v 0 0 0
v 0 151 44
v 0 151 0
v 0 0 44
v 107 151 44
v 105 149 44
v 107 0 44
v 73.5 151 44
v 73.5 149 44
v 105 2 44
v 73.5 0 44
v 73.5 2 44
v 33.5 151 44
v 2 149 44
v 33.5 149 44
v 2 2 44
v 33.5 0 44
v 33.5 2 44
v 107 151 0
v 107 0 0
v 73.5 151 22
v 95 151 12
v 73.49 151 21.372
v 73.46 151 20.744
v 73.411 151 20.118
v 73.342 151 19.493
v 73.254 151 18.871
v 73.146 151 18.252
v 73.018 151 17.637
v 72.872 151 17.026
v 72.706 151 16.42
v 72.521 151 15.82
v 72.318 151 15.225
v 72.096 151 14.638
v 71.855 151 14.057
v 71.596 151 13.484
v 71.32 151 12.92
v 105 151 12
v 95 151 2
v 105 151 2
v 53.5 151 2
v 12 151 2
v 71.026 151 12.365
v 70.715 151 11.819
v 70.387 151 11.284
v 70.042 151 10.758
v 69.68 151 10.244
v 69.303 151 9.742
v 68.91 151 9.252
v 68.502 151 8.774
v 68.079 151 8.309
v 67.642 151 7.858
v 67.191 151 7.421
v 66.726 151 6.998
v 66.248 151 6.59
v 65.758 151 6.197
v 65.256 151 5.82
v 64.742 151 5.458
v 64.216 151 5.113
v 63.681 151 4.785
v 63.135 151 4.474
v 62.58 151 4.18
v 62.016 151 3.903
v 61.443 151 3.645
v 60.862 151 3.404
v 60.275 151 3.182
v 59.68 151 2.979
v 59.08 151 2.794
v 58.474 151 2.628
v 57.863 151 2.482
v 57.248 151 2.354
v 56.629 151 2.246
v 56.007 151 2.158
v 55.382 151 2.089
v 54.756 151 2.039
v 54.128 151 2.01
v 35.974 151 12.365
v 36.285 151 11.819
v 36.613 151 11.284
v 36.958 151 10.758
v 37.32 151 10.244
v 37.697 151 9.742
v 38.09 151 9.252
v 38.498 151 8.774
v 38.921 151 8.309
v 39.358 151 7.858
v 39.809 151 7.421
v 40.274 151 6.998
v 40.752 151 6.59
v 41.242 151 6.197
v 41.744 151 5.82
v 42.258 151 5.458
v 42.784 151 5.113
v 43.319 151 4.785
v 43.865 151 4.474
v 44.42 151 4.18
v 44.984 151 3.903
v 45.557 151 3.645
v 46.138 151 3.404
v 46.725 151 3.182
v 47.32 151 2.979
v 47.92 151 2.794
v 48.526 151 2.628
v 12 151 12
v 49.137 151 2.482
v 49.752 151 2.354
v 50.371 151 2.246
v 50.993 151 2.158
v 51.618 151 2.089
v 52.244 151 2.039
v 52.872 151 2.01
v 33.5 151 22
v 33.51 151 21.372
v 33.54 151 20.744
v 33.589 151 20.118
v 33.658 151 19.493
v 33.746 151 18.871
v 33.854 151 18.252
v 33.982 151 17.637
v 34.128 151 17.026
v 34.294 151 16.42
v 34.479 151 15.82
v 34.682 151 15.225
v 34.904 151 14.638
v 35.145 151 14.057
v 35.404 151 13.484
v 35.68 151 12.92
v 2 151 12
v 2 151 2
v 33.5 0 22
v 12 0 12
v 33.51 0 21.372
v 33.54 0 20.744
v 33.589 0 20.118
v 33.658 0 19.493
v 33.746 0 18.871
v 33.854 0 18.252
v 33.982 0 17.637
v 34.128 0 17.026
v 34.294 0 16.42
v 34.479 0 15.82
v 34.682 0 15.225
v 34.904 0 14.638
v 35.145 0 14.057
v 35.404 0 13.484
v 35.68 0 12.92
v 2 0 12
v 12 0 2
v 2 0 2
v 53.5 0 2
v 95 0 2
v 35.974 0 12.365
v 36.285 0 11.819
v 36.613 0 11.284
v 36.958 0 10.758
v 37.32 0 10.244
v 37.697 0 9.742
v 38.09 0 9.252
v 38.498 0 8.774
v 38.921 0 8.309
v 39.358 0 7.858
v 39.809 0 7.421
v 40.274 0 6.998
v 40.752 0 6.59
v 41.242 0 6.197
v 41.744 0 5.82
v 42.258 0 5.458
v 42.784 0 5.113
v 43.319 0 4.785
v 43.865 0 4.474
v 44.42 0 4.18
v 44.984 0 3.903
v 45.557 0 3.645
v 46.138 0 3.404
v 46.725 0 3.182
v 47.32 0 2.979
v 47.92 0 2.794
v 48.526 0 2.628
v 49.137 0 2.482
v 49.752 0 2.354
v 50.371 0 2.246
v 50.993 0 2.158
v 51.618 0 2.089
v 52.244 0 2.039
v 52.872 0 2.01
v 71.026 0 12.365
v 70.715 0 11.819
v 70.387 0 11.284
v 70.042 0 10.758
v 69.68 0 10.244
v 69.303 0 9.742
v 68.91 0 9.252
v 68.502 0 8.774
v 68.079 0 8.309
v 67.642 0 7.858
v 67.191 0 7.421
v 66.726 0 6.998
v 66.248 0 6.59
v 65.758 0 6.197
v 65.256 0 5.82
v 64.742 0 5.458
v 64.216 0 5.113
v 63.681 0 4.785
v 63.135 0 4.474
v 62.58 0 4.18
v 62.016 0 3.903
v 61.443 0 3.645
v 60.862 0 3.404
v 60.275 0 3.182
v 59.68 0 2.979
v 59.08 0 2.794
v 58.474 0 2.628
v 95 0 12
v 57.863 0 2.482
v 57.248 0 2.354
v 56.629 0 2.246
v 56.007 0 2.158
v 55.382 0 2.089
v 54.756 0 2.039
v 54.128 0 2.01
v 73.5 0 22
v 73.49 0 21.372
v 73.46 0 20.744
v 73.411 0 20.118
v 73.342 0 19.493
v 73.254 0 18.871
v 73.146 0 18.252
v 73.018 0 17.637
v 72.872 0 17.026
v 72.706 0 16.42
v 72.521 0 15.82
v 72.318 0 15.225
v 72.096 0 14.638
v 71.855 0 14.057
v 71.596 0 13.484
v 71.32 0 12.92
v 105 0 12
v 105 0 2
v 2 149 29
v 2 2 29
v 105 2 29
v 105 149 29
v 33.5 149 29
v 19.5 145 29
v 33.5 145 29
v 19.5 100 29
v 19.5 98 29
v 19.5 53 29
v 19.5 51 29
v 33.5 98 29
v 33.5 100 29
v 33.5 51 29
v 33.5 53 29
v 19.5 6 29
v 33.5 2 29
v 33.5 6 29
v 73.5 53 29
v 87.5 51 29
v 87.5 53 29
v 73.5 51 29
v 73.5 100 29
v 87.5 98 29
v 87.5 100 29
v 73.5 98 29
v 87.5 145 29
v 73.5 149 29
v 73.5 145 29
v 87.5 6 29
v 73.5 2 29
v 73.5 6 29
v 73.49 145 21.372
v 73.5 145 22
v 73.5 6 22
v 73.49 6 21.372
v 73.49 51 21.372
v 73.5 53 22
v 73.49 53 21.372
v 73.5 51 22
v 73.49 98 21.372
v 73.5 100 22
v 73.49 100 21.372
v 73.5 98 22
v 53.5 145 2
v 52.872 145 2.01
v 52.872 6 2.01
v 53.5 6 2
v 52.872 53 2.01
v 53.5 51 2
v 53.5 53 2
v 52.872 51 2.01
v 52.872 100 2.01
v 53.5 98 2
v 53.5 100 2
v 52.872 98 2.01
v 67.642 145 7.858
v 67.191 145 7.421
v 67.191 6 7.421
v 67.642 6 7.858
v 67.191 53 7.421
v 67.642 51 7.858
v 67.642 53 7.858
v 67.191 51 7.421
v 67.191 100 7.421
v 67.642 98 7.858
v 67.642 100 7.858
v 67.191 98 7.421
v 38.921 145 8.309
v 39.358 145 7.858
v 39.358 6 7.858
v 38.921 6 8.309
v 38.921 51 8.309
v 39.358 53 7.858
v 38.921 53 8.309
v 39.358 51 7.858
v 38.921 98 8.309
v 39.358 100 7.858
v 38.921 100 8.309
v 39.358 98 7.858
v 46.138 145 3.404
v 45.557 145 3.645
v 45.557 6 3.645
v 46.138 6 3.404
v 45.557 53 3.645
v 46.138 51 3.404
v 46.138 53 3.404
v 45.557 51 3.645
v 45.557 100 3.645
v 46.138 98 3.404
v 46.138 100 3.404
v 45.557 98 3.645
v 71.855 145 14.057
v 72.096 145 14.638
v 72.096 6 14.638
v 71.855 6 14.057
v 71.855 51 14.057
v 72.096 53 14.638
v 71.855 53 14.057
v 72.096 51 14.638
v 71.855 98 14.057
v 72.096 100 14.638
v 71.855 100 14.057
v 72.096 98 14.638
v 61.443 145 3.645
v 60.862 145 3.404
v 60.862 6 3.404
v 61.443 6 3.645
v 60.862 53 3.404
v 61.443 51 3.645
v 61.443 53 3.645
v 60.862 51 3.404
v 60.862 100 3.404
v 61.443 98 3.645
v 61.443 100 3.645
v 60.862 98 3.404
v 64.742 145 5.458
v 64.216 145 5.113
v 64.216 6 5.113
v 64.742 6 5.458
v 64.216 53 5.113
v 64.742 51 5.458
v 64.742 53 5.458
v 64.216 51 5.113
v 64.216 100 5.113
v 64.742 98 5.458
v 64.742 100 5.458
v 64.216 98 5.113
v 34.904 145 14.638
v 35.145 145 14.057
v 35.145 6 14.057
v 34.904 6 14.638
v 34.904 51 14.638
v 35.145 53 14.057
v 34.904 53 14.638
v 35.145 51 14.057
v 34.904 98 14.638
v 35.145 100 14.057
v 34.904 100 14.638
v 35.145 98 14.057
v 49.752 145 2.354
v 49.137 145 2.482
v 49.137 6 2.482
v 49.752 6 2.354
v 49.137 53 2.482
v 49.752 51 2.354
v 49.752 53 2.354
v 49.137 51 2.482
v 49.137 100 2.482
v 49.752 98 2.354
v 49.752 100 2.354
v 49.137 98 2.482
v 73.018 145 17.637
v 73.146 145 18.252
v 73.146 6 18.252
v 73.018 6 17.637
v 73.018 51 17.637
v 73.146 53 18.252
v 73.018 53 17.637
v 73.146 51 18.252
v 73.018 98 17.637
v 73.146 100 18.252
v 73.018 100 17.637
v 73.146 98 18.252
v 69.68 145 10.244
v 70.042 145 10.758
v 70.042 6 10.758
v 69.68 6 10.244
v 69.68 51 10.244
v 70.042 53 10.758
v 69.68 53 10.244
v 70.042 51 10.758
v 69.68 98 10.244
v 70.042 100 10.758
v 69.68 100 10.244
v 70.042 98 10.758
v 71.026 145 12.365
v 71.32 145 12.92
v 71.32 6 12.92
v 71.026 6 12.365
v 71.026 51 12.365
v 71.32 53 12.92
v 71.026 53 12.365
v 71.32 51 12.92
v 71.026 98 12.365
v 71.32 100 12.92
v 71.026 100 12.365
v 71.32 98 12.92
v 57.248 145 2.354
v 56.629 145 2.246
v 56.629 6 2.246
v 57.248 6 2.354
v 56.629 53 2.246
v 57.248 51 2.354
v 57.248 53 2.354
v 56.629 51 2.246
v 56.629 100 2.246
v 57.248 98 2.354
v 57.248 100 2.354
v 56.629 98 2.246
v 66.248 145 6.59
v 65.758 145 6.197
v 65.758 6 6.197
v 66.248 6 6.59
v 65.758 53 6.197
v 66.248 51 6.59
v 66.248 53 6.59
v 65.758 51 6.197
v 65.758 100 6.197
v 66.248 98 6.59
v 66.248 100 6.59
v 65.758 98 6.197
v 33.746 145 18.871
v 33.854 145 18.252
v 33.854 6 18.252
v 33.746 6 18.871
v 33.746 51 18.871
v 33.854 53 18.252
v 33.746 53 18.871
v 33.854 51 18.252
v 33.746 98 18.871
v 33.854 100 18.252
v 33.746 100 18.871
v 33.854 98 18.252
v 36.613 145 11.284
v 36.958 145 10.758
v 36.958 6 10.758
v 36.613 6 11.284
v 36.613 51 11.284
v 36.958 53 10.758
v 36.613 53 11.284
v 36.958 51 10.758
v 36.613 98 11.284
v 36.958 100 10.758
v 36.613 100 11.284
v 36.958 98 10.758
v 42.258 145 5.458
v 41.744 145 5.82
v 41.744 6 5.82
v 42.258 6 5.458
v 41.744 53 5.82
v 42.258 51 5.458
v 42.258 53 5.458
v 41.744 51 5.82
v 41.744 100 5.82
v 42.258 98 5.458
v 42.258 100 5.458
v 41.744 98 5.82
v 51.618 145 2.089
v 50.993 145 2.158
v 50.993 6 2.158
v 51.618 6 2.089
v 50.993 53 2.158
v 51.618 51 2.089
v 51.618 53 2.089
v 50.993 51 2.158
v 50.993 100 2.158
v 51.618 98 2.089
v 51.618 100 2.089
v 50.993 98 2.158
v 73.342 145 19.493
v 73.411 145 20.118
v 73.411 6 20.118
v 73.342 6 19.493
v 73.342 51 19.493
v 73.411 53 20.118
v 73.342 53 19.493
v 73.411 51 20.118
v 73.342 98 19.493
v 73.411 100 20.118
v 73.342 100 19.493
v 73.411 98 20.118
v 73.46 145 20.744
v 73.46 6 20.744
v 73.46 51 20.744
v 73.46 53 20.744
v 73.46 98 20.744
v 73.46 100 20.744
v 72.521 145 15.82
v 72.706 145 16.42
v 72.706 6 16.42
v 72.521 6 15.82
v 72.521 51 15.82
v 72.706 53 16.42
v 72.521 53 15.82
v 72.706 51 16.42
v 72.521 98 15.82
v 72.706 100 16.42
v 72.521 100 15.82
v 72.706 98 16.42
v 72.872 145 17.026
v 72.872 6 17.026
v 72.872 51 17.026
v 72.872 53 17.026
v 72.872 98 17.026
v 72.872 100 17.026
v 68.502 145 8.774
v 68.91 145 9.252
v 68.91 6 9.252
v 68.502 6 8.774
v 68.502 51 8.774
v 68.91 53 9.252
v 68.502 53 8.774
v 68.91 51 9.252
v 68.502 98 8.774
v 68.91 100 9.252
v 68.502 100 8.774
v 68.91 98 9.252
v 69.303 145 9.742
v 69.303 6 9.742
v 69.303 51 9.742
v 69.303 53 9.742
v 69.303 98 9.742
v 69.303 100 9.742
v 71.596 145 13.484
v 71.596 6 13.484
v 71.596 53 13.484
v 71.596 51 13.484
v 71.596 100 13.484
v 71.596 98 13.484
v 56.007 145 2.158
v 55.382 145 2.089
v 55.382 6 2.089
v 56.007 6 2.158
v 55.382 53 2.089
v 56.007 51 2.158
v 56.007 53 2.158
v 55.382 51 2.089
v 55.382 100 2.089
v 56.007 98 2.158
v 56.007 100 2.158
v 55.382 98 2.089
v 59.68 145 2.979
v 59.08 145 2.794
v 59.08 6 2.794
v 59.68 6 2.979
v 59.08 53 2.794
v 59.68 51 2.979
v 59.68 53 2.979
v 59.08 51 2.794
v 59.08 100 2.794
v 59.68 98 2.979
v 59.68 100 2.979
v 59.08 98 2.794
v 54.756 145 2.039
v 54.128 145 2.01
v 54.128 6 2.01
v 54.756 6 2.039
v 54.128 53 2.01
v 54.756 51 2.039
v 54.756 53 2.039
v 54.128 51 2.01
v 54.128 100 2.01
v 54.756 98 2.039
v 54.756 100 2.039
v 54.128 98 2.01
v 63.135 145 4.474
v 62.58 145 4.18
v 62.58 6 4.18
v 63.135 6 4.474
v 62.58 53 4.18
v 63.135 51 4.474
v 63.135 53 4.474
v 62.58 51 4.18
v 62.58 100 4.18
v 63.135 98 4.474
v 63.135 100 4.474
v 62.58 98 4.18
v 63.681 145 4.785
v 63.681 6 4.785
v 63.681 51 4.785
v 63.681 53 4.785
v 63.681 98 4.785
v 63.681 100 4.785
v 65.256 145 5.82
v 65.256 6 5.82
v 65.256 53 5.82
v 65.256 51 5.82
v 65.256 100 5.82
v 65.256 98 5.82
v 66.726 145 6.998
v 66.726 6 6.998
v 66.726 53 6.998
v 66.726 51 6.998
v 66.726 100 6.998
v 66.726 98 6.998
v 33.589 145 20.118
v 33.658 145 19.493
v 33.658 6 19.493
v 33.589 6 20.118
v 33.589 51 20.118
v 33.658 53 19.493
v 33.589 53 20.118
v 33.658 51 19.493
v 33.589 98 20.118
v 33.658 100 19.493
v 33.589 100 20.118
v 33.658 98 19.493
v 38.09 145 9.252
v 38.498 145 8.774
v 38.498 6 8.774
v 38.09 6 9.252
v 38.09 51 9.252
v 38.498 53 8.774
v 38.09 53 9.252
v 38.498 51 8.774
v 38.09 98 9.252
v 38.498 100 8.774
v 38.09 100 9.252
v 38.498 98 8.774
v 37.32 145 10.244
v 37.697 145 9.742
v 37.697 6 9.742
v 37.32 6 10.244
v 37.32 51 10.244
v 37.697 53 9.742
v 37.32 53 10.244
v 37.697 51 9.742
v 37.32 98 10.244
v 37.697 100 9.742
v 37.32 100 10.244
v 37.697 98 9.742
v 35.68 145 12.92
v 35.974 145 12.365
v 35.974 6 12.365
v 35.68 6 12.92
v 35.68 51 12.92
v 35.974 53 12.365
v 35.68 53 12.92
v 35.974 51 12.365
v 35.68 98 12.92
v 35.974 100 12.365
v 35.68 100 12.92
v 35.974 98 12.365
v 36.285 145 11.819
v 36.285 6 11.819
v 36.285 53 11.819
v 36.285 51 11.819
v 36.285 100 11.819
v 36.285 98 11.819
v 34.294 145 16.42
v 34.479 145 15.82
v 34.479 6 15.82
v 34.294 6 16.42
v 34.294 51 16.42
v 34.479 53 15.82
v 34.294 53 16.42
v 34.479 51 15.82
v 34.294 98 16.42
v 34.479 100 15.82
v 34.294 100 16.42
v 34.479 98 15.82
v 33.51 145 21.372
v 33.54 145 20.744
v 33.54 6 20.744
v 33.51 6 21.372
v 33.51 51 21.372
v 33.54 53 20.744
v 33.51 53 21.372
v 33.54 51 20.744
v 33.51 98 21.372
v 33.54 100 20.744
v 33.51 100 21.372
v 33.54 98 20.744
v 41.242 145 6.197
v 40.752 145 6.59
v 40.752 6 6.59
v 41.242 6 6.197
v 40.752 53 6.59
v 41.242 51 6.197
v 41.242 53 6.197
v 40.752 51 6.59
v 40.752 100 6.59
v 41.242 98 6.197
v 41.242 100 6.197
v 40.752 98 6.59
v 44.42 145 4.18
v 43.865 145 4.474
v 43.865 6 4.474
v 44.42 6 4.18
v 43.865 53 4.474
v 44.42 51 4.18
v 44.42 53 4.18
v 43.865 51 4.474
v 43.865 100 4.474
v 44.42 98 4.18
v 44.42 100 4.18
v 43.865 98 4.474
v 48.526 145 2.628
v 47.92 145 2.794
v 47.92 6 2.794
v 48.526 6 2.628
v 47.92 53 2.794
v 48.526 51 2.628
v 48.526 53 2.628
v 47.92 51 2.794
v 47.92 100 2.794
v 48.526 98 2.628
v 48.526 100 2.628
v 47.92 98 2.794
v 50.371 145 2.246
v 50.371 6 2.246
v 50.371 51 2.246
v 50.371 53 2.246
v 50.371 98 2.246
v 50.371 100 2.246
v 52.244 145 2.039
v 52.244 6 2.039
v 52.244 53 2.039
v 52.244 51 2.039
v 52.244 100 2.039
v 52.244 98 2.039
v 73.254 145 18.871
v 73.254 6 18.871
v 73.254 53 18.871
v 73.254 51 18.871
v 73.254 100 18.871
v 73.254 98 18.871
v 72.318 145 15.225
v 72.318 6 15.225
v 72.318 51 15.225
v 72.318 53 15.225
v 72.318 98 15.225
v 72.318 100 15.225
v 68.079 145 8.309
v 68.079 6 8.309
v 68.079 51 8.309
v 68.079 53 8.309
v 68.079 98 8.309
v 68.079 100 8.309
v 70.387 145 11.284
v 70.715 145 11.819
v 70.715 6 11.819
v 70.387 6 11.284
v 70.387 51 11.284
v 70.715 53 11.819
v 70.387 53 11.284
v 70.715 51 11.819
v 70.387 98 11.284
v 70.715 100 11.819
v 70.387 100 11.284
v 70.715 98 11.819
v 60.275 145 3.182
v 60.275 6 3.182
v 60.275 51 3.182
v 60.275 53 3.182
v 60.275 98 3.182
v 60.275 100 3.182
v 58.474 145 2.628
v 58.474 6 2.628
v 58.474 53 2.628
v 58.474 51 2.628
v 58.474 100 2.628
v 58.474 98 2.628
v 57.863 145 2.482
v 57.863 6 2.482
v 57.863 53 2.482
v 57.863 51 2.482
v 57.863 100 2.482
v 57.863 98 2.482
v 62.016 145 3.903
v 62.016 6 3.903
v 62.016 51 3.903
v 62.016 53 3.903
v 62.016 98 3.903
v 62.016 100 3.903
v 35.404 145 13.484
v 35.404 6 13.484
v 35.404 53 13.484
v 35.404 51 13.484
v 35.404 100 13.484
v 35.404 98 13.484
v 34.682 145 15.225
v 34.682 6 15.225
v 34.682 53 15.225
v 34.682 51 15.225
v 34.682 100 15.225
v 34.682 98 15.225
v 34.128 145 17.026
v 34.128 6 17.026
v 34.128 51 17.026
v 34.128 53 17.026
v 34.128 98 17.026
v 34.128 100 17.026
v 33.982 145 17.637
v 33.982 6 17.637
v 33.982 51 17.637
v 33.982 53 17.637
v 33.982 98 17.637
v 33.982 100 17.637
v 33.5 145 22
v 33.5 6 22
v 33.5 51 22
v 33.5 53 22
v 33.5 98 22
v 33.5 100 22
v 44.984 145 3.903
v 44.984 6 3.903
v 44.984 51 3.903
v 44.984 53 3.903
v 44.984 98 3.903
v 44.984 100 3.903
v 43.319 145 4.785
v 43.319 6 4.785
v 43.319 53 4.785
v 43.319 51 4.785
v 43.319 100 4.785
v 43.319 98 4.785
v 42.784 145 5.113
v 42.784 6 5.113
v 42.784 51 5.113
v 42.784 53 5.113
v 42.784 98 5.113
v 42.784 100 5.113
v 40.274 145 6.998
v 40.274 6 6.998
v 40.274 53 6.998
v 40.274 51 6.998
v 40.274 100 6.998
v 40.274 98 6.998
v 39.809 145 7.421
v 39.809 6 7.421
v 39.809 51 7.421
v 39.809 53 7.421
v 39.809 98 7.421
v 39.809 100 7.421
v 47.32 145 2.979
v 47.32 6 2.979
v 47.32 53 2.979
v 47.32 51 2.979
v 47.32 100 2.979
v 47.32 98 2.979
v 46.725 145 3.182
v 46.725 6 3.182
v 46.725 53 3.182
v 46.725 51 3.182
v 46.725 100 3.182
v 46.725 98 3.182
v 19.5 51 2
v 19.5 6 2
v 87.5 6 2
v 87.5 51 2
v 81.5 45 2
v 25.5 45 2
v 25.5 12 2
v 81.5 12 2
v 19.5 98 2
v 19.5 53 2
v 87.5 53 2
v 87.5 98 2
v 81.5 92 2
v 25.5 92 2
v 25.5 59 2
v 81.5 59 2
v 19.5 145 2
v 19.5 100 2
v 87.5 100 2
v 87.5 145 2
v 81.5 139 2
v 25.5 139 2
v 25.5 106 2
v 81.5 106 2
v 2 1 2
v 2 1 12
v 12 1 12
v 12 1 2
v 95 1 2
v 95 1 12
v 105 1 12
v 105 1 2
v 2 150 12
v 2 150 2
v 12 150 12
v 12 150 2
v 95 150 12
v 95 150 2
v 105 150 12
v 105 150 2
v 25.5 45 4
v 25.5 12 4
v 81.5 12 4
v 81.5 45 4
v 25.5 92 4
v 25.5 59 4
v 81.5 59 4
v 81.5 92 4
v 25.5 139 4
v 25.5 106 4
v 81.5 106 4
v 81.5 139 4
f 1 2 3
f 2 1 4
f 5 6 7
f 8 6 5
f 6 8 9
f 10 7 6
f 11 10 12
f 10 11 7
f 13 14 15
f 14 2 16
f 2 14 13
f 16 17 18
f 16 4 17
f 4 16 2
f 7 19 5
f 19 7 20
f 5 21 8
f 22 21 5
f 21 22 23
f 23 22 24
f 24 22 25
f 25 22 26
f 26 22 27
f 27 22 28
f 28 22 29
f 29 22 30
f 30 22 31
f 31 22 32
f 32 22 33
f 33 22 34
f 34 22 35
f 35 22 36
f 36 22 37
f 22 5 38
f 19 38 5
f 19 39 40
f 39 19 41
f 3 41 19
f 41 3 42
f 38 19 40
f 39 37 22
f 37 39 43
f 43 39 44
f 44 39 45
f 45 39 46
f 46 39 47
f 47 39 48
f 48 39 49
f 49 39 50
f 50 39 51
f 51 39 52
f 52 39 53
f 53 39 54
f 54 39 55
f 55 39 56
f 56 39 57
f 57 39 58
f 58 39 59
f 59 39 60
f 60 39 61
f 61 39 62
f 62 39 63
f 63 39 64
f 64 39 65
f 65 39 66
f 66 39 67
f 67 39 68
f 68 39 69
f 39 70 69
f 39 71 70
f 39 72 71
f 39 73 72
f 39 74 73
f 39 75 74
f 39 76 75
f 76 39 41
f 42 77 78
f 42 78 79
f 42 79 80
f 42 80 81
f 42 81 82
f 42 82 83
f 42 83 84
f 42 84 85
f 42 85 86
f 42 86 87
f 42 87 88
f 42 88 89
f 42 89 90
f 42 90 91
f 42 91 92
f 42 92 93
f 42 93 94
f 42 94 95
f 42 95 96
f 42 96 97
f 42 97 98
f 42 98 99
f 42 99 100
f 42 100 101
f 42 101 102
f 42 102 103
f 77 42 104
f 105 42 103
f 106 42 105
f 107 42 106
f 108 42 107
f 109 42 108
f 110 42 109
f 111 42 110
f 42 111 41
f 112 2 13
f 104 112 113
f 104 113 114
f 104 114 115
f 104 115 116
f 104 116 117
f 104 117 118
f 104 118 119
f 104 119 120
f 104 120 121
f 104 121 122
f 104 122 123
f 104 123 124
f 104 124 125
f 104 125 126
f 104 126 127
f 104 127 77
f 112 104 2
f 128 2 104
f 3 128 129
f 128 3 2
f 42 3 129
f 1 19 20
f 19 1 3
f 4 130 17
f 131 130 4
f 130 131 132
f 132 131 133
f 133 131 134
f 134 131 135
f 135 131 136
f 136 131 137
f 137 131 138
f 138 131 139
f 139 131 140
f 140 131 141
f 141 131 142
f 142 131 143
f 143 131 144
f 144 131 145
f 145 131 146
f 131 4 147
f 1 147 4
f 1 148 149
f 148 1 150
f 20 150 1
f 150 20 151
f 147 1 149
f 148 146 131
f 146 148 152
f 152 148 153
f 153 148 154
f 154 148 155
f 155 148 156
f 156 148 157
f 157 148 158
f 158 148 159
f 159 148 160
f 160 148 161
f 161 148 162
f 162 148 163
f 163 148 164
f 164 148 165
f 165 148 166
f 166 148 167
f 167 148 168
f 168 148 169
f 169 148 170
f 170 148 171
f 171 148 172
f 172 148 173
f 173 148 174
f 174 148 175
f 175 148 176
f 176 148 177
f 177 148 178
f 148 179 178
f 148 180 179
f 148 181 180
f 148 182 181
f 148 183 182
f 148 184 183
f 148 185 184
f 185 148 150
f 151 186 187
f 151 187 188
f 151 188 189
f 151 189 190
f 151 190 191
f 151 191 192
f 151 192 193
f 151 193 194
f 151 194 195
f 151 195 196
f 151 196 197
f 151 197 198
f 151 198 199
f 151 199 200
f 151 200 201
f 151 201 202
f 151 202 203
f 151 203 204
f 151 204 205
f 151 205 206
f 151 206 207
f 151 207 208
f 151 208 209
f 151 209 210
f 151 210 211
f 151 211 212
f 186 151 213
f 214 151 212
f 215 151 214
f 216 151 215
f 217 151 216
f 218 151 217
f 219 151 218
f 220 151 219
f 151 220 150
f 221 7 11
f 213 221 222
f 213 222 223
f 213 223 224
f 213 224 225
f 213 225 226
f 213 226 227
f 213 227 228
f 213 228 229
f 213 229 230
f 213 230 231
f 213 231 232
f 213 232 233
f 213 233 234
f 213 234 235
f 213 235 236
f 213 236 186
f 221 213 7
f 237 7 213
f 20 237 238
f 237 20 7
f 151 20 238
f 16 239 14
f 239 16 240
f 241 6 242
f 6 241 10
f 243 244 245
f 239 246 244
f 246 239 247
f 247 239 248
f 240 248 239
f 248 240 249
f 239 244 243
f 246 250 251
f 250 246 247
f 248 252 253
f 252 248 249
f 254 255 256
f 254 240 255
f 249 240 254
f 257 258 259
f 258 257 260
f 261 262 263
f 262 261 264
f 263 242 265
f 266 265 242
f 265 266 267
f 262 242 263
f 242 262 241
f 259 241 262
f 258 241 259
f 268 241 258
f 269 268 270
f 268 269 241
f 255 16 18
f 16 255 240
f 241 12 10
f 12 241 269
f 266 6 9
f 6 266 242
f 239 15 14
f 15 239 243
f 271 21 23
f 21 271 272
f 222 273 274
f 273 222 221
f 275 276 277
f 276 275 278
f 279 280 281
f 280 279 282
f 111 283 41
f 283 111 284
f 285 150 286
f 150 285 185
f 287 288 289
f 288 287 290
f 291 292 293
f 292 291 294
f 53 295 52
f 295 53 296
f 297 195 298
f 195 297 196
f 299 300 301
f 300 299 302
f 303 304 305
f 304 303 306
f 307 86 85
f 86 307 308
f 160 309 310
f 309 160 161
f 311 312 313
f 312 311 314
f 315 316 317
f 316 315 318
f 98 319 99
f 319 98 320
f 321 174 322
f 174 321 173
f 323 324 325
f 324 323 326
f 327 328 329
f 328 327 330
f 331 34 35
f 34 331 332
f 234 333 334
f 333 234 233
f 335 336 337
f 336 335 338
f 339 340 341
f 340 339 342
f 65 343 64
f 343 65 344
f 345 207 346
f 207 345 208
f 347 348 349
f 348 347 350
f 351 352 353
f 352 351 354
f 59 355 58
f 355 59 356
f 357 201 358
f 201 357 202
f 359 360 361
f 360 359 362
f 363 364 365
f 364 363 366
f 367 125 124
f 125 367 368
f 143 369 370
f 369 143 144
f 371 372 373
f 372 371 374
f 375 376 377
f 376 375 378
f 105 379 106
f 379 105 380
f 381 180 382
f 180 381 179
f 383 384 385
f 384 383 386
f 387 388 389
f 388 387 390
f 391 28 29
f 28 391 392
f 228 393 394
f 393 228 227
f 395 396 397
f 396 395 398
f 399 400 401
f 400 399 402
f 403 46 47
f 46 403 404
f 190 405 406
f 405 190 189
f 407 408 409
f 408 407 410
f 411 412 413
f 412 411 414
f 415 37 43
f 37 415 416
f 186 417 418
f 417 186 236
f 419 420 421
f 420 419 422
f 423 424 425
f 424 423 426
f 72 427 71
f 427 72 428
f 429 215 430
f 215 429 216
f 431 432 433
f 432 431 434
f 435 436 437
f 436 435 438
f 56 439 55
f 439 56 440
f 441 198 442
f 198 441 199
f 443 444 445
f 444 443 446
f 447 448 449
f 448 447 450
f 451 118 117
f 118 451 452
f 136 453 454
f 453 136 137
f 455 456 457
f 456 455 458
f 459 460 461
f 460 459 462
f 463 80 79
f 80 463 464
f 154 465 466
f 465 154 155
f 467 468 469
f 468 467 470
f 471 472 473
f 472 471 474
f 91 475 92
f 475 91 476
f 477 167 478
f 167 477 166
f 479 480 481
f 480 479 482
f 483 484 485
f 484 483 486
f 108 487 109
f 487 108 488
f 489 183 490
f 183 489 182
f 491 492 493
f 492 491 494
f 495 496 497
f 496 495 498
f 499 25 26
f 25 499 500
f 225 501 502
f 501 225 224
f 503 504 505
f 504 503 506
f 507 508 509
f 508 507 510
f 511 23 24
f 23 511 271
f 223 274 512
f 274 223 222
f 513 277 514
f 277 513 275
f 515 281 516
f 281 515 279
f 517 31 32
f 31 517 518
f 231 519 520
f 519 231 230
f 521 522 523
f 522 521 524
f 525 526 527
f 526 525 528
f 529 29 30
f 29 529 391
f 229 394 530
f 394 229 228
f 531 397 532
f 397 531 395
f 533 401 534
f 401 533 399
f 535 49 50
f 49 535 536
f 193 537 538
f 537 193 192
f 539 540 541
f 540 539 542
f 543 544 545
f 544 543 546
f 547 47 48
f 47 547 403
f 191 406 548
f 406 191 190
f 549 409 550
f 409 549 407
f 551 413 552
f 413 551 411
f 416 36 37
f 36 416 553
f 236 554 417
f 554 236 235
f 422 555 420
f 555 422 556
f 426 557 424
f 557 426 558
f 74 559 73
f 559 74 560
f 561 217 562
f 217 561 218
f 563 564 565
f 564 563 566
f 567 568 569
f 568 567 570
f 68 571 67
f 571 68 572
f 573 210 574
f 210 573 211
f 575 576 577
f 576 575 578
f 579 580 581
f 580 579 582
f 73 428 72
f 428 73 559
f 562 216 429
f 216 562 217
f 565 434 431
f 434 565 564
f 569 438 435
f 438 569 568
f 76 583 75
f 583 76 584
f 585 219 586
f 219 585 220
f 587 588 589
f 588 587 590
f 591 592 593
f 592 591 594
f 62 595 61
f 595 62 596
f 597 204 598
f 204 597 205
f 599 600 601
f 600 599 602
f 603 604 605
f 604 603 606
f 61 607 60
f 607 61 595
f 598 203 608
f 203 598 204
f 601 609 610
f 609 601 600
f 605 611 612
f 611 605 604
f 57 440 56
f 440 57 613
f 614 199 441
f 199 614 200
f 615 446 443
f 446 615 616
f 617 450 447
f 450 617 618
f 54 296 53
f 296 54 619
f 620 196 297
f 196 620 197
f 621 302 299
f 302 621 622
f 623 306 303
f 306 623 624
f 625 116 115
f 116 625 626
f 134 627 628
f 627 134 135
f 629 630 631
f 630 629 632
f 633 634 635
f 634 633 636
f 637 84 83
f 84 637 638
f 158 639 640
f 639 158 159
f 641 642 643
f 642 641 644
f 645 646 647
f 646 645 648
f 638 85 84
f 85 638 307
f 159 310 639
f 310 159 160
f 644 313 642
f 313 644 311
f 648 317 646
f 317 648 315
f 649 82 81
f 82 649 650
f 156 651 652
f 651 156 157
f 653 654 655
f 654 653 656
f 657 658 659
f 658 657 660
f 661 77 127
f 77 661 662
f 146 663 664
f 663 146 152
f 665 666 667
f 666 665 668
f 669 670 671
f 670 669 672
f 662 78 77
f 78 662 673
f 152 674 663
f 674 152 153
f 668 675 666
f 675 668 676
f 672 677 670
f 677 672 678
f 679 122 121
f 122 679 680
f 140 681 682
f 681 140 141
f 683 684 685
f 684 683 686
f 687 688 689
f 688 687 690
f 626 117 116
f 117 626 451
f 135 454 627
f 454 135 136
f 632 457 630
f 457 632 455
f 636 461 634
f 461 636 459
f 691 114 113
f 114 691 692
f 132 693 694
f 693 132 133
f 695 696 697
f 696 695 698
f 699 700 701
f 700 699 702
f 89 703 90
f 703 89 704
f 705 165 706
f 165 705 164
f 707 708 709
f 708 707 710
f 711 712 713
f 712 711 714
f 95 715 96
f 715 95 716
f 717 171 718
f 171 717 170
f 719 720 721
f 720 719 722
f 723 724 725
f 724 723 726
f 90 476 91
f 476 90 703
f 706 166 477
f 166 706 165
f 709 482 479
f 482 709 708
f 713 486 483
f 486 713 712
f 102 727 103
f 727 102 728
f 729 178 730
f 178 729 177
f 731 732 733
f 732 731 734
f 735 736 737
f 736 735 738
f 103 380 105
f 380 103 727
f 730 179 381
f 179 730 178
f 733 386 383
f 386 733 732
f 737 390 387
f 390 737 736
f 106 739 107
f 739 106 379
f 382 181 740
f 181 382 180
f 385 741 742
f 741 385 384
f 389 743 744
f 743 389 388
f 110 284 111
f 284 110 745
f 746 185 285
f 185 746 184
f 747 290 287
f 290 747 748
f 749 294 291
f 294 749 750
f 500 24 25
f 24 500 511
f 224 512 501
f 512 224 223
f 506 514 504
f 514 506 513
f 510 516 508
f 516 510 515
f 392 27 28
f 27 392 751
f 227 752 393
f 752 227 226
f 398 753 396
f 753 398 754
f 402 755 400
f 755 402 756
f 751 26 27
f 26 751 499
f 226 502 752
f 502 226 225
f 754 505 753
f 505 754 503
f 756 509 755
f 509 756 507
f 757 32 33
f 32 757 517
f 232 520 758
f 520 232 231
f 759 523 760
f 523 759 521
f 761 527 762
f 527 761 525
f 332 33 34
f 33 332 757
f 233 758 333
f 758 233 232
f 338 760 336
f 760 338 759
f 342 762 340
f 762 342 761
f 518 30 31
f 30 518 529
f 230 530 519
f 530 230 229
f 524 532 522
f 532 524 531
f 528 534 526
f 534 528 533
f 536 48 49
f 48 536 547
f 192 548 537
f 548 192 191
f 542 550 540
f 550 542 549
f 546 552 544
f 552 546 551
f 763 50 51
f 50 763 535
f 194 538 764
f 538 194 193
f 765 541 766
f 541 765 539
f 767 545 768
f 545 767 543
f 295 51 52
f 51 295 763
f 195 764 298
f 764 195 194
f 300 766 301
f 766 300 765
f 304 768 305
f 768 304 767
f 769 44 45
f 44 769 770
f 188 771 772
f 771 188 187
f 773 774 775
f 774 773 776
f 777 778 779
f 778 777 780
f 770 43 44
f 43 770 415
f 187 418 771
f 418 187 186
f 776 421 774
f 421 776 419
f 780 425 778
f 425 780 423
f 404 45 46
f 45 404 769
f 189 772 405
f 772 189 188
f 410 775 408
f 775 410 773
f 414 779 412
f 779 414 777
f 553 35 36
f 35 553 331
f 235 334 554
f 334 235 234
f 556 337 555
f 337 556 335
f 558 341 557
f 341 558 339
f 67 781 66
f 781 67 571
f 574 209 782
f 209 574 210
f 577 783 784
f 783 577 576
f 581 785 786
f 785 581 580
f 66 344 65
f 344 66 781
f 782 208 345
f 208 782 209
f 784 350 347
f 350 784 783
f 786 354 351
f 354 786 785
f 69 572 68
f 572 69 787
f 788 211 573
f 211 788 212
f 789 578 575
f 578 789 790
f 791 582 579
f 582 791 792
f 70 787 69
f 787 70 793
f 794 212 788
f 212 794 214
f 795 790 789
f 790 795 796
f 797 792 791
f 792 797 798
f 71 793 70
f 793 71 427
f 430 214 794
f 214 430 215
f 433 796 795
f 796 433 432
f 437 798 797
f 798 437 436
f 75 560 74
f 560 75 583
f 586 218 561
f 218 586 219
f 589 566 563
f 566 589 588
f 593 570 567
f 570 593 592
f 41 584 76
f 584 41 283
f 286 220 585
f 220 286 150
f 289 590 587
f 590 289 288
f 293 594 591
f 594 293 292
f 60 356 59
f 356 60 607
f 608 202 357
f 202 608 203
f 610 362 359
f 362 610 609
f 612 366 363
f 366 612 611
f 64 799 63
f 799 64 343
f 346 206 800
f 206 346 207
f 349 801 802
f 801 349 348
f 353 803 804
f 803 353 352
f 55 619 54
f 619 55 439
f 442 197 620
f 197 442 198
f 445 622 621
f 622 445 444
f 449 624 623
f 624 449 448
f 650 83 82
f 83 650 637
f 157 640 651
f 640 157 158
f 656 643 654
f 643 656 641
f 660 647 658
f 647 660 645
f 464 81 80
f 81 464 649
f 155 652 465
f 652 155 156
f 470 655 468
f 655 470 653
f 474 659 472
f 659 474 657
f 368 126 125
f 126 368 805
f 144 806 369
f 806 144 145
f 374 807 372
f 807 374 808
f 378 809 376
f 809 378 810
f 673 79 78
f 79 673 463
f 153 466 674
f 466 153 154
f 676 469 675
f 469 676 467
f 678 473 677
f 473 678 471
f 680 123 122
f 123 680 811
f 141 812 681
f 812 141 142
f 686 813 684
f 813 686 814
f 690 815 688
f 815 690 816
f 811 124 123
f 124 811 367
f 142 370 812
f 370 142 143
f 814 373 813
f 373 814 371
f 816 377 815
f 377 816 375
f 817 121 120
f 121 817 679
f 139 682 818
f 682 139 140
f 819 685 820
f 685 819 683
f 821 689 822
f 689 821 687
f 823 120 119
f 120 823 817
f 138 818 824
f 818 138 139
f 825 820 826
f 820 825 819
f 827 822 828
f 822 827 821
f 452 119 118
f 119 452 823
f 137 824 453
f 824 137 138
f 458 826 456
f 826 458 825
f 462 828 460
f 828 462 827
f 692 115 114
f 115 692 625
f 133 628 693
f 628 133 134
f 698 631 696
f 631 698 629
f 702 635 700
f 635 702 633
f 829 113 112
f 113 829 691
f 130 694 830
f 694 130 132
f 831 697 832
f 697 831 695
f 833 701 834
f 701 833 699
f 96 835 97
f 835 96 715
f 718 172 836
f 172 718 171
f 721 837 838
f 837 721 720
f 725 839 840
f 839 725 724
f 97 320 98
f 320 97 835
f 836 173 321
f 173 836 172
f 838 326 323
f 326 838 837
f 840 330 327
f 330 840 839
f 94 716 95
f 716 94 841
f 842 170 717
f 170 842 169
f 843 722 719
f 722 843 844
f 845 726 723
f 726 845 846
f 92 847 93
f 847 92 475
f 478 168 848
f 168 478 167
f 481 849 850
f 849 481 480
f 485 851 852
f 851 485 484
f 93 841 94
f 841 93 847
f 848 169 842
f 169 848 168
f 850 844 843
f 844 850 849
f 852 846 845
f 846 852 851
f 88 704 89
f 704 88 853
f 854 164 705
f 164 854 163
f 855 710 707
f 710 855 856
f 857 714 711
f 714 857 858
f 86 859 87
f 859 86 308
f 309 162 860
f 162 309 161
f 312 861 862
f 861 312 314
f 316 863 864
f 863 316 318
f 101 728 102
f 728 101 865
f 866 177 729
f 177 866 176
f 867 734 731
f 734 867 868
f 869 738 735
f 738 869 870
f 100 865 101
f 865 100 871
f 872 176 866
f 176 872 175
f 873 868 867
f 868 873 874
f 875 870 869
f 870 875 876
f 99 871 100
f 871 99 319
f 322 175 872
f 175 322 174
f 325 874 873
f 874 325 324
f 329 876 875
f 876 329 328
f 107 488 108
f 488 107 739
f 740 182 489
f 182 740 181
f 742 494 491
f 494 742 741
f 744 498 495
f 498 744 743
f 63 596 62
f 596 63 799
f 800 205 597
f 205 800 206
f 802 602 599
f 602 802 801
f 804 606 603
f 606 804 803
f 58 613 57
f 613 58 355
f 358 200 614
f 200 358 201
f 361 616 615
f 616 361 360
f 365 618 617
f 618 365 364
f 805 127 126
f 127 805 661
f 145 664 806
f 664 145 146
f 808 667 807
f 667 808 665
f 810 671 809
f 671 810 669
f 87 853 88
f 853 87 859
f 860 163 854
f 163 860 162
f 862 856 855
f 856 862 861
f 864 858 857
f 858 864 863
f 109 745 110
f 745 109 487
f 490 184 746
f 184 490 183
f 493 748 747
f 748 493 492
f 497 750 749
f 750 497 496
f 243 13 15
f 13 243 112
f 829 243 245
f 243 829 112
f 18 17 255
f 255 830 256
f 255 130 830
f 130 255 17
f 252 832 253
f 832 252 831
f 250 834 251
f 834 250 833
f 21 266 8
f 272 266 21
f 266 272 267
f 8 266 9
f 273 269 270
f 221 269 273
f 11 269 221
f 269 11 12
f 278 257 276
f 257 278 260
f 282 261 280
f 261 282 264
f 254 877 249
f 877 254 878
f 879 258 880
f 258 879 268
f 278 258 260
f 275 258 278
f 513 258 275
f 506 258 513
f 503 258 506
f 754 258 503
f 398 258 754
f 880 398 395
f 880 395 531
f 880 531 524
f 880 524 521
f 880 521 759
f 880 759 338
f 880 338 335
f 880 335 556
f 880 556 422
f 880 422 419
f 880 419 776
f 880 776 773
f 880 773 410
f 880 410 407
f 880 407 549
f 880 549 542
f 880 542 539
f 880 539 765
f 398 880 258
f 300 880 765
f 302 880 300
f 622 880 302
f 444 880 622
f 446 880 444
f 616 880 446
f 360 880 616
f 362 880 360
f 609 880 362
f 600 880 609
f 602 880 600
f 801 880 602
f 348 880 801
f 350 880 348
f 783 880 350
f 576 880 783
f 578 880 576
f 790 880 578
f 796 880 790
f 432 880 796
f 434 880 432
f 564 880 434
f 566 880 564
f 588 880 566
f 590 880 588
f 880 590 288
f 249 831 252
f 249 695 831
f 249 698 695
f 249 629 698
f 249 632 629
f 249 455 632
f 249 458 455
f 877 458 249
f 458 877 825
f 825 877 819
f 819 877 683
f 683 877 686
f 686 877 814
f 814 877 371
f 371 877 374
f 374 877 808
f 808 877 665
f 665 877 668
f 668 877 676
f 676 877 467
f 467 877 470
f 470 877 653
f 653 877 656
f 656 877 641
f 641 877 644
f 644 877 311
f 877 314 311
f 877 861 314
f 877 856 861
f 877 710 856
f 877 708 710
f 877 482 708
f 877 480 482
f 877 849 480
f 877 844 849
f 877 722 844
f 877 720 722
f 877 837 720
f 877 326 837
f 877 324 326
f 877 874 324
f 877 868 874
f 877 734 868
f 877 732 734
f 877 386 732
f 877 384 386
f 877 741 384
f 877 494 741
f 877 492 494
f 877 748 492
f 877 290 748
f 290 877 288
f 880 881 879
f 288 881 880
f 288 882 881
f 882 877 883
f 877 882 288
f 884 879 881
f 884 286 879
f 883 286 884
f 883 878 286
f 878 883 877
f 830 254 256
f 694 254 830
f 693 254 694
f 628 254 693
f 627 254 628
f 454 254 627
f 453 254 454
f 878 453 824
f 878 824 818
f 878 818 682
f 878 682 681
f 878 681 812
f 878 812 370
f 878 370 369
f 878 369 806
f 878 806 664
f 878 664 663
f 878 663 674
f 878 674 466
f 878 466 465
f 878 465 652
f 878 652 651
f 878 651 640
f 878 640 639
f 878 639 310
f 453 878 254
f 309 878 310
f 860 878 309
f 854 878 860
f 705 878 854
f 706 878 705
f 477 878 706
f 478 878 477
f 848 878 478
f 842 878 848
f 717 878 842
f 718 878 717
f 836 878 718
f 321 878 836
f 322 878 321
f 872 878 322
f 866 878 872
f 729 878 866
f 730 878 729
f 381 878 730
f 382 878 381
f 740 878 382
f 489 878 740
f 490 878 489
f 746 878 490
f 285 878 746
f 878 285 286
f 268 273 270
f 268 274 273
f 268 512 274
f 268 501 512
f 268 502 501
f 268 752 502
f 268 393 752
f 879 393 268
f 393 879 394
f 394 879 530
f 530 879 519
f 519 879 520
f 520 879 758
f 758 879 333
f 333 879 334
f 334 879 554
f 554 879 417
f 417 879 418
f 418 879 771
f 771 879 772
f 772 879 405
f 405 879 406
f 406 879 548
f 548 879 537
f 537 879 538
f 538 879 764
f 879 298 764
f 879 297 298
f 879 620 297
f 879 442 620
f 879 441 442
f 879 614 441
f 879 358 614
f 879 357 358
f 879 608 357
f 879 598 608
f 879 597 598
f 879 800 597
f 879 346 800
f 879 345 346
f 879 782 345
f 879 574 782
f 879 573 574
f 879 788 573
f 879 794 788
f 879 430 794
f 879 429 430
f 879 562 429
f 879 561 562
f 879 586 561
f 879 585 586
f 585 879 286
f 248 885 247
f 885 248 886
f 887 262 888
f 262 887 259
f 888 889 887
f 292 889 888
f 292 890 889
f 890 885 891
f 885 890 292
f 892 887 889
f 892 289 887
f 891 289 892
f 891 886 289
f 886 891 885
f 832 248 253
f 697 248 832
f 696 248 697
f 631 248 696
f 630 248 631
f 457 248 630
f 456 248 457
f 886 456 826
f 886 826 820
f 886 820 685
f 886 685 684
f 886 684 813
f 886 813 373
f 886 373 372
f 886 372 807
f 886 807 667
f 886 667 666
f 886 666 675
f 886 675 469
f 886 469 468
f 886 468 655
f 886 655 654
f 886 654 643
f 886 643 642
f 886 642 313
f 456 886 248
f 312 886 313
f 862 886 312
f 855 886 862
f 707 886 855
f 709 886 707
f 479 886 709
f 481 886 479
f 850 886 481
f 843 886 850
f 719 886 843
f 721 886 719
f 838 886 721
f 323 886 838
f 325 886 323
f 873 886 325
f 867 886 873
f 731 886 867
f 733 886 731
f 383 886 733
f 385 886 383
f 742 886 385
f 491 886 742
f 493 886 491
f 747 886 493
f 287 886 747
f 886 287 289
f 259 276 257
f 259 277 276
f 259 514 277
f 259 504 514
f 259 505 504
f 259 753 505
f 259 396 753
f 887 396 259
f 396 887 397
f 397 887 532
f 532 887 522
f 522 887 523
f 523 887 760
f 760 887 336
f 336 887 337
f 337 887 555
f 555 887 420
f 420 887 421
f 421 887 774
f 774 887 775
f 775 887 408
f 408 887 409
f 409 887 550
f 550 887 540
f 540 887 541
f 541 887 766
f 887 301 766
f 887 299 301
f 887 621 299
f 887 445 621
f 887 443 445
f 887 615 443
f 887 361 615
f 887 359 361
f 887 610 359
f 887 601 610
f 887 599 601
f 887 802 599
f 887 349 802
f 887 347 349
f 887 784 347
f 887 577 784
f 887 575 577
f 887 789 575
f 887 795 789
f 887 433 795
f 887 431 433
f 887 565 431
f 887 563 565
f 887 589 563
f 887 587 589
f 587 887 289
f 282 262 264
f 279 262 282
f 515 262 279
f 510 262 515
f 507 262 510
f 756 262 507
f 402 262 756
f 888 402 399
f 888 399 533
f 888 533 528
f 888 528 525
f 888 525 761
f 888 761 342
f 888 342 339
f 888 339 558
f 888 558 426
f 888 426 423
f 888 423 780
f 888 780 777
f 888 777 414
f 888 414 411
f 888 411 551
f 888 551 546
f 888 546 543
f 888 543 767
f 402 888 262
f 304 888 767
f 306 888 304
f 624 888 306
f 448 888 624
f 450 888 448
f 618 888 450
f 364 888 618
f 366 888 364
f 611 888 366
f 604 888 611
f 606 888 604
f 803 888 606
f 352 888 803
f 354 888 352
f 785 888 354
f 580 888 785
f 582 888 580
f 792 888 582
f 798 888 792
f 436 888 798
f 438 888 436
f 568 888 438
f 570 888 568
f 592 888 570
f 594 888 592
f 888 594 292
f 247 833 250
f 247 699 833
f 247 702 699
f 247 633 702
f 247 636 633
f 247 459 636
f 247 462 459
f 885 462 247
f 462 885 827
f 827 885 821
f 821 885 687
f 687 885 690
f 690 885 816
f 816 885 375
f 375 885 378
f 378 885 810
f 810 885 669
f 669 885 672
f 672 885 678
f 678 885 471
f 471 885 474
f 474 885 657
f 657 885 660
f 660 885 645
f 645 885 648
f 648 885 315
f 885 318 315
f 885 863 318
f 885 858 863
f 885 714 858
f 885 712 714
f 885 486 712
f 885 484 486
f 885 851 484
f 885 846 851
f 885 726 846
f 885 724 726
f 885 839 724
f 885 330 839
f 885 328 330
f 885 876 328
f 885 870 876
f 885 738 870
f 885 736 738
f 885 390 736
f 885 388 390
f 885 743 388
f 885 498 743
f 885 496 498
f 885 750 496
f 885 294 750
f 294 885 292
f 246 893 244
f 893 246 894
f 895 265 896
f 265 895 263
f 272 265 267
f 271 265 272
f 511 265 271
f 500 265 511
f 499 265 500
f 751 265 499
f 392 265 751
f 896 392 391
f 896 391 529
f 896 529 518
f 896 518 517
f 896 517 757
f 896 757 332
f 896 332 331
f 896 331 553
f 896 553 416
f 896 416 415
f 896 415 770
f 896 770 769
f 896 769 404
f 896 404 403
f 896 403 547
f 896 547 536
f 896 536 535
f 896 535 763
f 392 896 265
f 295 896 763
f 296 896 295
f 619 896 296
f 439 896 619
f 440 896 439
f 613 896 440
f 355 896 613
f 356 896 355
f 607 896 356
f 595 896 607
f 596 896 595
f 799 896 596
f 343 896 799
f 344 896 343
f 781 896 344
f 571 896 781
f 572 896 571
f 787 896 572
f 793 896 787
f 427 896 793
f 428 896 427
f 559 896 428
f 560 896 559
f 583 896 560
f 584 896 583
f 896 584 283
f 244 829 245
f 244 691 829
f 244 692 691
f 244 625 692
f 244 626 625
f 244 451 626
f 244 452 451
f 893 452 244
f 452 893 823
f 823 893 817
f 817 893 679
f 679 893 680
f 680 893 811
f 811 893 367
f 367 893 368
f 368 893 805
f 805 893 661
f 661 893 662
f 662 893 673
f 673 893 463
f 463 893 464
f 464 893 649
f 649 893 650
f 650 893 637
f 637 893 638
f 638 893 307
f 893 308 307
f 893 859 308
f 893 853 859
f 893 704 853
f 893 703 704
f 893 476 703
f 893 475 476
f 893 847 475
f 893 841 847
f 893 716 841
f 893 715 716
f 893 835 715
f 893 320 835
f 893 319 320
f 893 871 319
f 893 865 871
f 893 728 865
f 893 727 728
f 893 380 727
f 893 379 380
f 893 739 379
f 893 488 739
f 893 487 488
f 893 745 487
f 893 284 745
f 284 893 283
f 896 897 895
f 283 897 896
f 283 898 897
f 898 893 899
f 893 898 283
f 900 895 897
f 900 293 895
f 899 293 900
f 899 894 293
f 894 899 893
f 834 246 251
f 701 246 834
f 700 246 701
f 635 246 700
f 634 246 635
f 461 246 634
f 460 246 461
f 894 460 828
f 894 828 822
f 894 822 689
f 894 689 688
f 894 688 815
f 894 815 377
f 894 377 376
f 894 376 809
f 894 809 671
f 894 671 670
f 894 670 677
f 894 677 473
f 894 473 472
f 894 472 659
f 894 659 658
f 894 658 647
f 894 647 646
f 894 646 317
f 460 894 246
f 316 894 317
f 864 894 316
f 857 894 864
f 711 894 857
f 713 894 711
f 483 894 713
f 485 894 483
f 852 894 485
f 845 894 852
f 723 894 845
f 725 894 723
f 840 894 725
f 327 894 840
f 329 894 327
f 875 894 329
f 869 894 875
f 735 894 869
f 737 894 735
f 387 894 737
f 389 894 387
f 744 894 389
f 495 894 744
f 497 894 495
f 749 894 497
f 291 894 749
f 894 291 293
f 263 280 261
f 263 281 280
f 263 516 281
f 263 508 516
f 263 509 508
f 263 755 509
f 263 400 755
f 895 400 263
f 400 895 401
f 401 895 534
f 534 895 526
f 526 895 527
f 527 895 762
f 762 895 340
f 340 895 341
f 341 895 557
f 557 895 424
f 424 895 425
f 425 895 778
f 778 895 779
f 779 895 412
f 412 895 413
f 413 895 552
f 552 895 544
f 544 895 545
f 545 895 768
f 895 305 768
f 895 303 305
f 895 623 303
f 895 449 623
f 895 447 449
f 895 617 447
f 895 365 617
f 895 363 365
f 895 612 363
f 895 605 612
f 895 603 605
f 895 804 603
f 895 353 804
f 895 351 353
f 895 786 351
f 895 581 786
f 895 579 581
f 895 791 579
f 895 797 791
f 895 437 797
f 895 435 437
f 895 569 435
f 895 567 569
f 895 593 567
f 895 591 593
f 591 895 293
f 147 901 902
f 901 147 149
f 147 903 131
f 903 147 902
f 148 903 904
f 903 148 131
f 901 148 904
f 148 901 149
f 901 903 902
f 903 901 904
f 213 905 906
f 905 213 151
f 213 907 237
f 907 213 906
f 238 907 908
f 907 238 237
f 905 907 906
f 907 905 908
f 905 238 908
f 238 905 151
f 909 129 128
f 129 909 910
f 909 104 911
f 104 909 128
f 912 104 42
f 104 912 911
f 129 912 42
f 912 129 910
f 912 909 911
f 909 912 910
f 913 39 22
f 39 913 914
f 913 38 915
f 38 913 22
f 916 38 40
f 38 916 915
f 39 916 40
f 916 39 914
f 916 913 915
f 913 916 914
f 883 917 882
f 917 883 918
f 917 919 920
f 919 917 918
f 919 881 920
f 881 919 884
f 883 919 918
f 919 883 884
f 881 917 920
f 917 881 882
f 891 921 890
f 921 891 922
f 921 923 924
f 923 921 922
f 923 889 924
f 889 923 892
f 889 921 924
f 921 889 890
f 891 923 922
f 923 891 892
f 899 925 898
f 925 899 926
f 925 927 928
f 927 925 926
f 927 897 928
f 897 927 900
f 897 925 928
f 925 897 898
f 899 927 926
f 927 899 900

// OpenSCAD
$fn=200;

THICK = 2;

LARGE_CARD_L = 147;
LARGE_CARD_W = 103;
LARGE_CARD_STACK = 15;

SMALL_CARD_L = 68;
SMALL_CARD_W = 45;
SMALL_CARD_STACK = 25;

STUMP = 2;
STUMP_MARGIN = 6;

BOX_W = LARGE_CARD_W + (THICK * 2);
BOX_L = LARGE_CARD_L + (THICK * 2);
BOX_H = LARGE_CARD_STACK + SMALL_CARD_STACK + THICK + STUMP;

SMALL_X = (BOX_W / 2) - (SMALL_CARD_L / 2);

difference() {
    cube(size = [
        BOX_W,
        BOX_L, 
        BOX_H]);

    translate([
        THICK, 
        THICK, 
        BOX_H - LARGE_CARD_STACK]) {
            
        cube(size = [
            LARGE_CARD_W,
            LARGE_CARD_L,
            LARGE_CARD_STACK + 1]);
    }

    translate([
        (BOX_W / 2),
        -1,
        22]) {

        rotate([270, 0, 0]) {
            cylinder(
                h = 1000,
                r = 20);
        }
    }

    translate([
        (BOX_W / 2) - 20, 
        -1, 
        22]) {
            
        cube(size = [
            40,
            250,
            80]);
    }
    
    smallBox(
        SMALL_X, 
        THICK + 4, 
        THICK);

    smallBox(
        SMALL_X, 
        (BOX_L / 2) - (SMALL_CARD_W / 2), 
        THICK);

    smallBox(
        SMALL_X, 
        BOX_L - SMALL_CARD_W - THICK - 4, 
        THICK);

    lock(2, -1);
    lock(95, -1);

    lock(2, 150);
    lock(95, 150);
}



smallStump(THICK + 4 + STUMP_MARGIN);
smallStump((BOX_L / 2) - (SMALL_CARD_W / 2) + STUMP_MARGIN);
smallStump(BOX_L - SMALL_CARD_W - THICK - 4 + STUMP_MARGIN);

module lock(x, y) {
    translate([x, y, 2])
        cube(size = [10, 2, 10]);
}

module smallStump(y) {
    translate([SMALL_X + STUMP_MARGIN, y, THICK]) {
        cube(size = [
            SMALL_CARD_L - (STUMP_MARGIN * 2),
            SMALL_CARD_W - (STUMP_MARGIN * 2),
            STUMP]);
    }
}

module smallBox(x, y, z) {
    translate([x, y, z]) {
        cube(size = [
            SMALL_CARD_L,
            SMALL_CARD_W,
            SMALL_CARD_STACK + 1 + STUMP]);
    }
}
